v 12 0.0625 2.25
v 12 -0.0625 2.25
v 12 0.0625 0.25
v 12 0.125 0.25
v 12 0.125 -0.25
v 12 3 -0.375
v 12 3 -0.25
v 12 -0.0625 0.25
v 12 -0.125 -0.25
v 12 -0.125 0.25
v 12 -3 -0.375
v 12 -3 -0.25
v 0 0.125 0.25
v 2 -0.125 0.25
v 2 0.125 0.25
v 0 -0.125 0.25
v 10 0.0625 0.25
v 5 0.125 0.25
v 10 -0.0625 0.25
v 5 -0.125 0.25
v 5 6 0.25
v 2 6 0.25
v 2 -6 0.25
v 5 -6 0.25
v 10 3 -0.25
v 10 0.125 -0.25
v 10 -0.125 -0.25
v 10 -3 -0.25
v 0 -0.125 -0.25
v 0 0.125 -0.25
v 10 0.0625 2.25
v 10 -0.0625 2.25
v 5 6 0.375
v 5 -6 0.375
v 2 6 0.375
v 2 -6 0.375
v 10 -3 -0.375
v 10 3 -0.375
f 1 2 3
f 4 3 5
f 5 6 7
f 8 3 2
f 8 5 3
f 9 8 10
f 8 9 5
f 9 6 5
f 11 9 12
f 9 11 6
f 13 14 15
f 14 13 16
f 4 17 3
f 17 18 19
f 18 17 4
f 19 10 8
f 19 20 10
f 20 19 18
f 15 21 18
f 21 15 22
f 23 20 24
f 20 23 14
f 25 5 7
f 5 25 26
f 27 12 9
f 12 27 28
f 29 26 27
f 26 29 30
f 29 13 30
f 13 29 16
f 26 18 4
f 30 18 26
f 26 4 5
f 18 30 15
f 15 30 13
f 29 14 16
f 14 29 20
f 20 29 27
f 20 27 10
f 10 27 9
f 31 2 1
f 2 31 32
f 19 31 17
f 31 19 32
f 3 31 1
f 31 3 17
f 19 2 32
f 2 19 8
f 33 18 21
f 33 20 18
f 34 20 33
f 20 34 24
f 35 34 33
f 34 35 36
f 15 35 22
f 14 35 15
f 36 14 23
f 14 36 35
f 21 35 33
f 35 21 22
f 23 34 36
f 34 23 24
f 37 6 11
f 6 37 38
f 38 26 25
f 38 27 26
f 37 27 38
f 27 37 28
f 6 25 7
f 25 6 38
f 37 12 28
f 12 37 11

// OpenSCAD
// file: body/stick/stick.scad
module stick() {
  translate([0,-1/8,-1/4])
  cube([12,1/4,1/2]);
}

stick();
// file: body/rudder/rudder.scad
module rudder() {
  translate([0,-1/16, 0])
  cube([2,1/8,2]);
}

rudder();
// file: stab/stab.scad
module stab() {
  translate([0,-3,0])
  cube([2,6,1/8]);
}

stab();
// file: wing/wing.scad
module wing() {
  translate([0,-6,0])
  cube([3,12,1/8]);
}

  
wing();
// file: body/body.scad
use <rudder/rudder.scad>
use <stick/stick.scad>

module body() {
  union() {
    stick();
      translate([10,0,1/4])
	rudder();
  }
}
  
body();
// main file
$fn=100;
use <body/body.scad>
use <wing/wing.scad>
use <stab/stab.scad>

module model() {
  union() {
    body();
    translate([2,0,1/4]) wing();
    translate([10,0,-3/8]) stab();
  }
}

model();
